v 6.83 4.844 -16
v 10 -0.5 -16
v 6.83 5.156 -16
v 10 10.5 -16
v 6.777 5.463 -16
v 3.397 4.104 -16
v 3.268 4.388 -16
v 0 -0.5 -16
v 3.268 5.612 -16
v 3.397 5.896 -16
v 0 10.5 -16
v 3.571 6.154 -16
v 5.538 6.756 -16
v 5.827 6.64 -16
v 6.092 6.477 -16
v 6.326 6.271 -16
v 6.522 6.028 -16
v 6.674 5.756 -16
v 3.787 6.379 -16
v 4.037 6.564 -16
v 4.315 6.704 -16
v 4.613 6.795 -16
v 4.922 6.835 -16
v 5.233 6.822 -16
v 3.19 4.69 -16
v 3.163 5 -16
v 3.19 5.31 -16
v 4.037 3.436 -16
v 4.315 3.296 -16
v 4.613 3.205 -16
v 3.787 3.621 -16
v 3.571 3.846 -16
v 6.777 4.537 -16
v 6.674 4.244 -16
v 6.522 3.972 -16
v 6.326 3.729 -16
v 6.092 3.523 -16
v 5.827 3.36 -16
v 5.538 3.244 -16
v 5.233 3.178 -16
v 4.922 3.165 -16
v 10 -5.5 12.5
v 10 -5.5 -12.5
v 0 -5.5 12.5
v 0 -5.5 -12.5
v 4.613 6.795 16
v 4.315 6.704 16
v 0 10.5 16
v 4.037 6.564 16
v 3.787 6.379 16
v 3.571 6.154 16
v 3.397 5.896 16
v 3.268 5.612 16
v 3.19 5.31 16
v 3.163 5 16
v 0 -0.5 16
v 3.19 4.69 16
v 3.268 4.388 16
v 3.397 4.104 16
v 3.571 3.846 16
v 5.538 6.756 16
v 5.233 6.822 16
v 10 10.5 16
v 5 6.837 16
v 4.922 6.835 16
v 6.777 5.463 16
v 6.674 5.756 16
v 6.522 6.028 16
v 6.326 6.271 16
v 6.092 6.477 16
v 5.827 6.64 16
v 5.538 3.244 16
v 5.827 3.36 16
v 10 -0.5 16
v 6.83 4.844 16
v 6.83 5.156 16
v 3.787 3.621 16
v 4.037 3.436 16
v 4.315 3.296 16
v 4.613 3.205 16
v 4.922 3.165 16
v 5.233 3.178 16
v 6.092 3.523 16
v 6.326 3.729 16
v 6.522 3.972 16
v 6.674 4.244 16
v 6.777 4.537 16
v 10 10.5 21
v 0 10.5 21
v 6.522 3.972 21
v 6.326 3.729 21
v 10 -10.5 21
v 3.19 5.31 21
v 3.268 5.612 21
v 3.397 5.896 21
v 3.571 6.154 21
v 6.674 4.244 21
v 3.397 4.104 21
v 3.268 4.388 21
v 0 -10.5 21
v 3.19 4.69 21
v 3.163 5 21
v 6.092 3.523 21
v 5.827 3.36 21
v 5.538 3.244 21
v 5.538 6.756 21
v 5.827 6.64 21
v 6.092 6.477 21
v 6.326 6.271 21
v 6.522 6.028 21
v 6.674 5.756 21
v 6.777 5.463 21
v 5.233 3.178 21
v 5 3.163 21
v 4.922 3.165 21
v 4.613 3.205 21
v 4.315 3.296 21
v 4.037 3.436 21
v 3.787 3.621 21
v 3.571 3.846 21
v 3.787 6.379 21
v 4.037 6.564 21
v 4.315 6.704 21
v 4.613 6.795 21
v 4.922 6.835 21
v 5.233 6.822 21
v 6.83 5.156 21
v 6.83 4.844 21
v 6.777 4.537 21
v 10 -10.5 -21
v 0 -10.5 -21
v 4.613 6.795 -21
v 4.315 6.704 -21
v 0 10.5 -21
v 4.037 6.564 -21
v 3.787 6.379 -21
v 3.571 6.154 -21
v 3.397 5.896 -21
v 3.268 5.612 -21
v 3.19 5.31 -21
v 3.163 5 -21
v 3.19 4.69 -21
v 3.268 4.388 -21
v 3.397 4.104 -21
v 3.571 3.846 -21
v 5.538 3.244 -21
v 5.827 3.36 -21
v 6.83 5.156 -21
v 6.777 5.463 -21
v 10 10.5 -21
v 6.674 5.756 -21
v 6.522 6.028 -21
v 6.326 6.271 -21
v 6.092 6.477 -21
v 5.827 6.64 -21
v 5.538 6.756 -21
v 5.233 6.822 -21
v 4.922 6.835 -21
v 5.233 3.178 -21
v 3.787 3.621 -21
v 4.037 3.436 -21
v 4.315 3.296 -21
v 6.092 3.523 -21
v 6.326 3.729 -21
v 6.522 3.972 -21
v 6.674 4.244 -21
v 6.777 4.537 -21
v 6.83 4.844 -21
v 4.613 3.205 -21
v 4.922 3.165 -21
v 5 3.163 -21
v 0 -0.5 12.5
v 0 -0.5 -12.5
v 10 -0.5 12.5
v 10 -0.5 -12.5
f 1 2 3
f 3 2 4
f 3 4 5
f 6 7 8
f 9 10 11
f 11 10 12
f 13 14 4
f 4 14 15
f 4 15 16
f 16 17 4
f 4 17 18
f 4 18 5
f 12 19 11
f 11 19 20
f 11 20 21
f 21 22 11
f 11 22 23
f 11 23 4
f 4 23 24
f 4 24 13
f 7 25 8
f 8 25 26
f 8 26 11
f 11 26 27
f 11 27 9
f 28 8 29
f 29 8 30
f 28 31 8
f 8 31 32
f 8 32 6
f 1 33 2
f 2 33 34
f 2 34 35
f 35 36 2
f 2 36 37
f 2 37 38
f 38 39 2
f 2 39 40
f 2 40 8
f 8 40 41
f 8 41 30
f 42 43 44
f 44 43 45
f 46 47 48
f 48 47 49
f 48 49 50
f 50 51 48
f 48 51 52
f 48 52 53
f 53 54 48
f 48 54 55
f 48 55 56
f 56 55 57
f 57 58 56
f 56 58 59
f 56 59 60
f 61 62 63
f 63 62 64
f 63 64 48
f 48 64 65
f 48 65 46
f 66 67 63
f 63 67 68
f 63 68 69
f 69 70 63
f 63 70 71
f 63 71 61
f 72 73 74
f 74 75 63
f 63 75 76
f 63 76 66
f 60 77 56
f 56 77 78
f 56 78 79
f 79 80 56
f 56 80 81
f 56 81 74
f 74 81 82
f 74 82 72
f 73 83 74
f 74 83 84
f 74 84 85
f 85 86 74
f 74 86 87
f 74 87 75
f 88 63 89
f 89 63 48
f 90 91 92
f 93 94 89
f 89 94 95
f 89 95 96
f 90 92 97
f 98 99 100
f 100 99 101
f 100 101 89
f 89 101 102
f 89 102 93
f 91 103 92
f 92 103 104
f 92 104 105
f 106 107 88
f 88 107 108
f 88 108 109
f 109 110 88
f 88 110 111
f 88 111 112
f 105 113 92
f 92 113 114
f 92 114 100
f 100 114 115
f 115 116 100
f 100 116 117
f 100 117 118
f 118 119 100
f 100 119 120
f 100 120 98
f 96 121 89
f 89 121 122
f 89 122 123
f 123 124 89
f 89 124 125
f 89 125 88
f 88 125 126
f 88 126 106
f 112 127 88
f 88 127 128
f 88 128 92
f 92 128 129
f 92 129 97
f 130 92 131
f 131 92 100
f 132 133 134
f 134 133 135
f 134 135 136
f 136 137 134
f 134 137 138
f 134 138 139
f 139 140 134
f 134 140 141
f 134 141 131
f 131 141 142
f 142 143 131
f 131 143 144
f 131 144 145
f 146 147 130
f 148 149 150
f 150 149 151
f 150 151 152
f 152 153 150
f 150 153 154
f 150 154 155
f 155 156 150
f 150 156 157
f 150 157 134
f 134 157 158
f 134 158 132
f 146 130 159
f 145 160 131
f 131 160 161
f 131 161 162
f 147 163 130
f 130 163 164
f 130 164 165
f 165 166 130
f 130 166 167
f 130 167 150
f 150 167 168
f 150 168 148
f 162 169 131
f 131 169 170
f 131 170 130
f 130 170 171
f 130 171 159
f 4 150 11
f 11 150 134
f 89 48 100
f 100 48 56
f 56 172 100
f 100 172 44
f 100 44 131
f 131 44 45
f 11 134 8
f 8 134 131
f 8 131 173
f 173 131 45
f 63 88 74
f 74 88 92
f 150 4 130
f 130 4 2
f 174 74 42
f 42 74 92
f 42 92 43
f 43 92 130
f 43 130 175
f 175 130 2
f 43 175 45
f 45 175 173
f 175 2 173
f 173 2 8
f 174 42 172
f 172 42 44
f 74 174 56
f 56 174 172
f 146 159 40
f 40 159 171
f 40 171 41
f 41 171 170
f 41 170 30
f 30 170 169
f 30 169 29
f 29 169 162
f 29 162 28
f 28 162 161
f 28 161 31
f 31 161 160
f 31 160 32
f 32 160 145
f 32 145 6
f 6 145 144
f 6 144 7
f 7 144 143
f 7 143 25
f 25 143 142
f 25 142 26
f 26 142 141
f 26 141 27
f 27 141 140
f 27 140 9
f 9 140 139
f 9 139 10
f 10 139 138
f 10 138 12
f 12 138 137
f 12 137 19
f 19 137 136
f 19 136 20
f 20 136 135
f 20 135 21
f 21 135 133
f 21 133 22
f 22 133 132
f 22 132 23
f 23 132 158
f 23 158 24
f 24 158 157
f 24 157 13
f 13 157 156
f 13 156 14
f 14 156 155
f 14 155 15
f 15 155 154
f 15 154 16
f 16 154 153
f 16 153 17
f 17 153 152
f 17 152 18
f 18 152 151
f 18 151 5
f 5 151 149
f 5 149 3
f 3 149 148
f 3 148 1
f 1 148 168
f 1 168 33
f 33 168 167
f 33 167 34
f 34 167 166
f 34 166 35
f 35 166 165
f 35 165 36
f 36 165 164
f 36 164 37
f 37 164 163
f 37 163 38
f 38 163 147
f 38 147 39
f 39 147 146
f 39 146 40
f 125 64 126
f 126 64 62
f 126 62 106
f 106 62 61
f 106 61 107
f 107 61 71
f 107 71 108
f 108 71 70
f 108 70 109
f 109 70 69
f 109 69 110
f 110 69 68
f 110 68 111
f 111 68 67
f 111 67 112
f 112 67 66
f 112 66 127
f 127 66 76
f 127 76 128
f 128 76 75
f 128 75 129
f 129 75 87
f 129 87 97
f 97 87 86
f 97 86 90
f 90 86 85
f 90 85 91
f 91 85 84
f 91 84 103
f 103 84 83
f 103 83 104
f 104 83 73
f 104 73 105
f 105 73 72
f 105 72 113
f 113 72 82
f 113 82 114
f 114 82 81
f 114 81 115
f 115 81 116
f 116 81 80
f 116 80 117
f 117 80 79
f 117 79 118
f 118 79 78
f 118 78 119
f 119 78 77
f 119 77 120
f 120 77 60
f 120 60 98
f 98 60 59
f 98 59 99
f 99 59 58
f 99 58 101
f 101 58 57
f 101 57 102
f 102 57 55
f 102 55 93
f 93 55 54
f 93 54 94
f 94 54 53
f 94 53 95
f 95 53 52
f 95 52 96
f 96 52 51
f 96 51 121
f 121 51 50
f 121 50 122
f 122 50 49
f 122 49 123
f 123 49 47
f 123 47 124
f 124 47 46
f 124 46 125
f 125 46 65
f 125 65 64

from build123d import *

# Parameters (mm, degrees)
SKETCH1_W               = 3.5
SKETCH1_H               = 5
BOSS_EXTRUDE1_DEPTH     = 10
CUT_EXTRUDE1_DEPTH      = 53
CUT_EXTRUDE1_DEPTH_BACK = 10
SKETCH2_R               = 1.836585915


with BuildPart() as part:
    # Sketch1 → Boss-Extrude1 (new body)
    with BuildSketch(Plane(origin=(0, 0, 0), x_dir=(0, 0, -1), z_dir=(1, 0, 0))):
        Polygon((-21, 10.5), (-21, -10.5), (21, -10.5), (21, 10.5), (16, 10.5), (16, -0.5), (16, -5.5), (12.5, -5.5), (-12.5, -5.5), (-16, -5.5), (-16, -0.5), (-16, 10.5), align=None)
        with Locations((-14.25, -3)):
            Rectangle(SKETCH1_W, SKETCH1_H)
        with Locations((14.25, -3)):
            Rectangle(SKETCH1_W, SKETCH1_H)
    extrude(amount=BOSS_EXTRUDE1_DEPTH)

    # Sketch2 → Cut-Extrude1 (cut, two sides: drawn at the far end of the back side and taken through both)
    with BuildSketch(Plane.XY.offset(-16).offset(-CUT_EXTRUDE1_DEPTH_BACK)):
        with Locations(Location((5, 5, 0), (0, 0, 180))):
            Circle(SKETCH2_R)
    extrude(amount=CUT_EXTRUDE1_DEPTH + CUT_EXTRUDE1_DEPTH_BACK, mode=Mode.SUBTRACT)


solid = part.part
